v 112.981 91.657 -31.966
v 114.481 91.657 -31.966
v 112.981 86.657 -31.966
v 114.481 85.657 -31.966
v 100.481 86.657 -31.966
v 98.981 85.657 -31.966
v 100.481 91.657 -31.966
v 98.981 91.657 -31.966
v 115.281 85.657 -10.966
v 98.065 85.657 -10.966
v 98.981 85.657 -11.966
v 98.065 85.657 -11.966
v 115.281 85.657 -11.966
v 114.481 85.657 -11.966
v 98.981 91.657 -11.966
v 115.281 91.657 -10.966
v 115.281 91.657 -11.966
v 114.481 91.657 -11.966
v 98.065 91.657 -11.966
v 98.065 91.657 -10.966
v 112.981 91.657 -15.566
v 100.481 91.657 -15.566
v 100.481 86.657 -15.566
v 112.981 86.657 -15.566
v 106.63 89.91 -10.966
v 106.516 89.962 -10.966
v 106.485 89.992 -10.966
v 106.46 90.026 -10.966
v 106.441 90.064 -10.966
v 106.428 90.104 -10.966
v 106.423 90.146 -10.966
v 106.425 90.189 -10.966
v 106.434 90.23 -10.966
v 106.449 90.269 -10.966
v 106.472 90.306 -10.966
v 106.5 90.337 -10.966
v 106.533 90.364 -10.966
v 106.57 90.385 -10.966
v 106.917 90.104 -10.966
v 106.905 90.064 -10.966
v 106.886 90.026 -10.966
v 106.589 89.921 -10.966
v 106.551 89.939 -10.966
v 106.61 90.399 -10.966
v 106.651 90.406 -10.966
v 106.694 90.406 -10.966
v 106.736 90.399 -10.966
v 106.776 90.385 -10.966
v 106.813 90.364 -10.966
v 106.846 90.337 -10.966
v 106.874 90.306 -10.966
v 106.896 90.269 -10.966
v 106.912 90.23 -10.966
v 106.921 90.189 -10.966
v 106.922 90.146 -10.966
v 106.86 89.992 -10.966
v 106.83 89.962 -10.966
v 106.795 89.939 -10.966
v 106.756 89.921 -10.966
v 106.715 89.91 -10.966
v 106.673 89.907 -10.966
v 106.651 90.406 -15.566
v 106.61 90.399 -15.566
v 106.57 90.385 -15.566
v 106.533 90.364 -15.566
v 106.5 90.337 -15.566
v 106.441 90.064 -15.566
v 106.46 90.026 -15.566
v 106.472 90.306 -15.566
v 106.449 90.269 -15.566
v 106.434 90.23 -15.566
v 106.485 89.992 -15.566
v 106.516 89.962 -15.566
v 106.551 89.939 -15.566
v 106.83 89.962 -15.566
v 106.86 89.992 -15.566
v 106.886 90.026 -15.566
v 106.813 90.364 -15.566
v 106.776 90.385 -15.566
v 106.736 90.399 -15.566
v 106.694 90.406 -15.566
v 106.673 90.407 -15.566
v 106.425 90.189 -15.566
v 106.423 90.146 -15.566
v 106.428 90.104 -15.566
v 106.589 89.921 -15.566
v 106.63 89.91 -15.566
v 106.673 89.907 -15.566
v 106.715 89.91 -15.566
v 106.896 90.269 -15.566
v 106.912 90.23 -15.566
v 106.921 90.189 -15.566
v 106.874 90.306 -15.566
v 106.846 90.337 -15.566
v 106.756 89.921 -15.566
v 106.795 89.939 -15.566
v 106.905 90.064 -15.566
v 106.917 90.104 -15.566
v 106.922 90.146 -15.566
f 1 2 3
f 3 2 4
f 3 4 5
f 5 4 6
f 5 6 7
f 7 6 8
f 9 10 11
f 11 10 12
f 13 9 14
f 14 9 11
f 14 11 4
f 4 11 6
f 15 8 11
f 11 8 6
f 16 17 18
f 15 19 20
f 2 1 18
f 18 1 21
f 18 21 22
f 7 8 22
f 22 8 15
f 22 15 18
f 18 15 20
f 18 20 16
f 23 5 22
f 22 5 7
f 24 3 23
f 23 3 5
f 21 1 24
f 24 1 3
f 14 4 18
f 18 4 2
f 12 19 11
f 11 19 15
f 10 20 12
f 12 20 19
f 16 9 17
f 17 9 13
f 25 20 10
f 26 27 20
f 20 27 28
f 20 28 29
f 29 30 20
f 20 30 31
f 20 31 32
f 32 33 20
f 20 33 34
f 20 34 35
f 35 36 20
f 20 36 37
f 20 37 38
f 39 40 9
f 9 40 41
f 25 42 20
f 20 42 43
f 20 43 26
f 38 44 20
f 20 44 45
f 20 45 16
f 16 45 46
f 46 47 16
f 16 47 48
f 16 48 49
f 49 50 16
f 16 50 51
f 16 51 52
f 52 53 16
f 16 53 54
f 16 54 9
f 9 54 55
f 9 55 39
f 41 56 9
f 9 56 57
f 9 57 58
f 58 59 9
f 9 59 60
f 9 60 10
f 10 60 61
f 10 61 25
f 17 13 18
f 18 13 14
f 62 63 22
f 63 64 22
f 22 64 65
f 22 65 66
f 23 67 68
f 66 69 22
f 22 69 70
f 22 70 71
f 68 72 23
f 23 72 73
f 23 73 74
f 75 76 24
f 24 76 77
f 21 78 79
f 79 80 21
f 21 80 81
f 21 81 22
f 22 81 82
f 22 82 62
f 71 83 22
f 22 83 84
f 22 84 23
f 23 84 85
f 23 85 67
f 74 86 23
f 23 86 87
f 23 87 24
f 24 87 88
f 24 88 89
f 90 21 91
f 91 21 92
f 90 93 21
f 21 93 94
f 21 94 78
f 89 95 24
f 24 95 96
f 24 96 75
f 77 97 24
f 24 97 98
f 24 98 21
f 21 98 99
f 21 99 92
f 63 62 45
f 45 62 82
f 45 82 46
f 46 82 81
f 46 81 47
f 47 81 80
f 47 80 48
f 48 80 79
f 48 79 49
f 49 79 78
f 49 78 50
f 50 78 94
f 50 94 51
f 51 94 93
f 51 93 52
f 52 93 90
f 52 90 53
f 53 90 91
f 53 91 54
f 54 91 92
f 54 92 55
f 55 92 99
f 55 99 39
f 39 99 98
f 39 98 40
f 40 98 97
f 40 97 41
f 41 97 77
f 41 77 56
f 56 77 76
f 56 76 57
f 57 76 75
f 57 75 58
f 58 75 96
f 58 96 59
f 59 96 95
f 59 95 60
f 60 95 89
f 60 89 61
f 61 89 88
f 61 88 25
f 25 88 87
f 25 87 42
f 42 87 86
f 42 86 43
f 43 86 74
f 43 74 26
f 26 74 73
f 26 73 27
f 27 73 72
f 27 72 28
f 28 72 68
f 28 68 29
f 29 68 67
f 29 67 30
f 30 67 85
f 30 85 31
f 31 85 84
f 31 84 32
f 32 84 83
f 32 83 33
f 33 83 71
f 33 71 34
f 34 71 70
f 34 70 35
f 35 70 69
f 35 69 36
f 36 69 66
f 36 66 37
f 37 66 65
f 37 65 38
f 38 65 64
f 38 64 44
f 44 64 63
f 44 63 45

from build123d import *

# Parameters (mm, degrees)
BOSS_EXTRUDE1_DEPTH       = 20
SKETCH4_W                 = 17.215870058
SKETCH4_H                 = 6
BOSS_EXTRUDE2_DEPTH       = 1
BOSS_EXTRUDE3_DEPTH       = 3.6
F_1_0MM_DOWEL_HOLE1_D     = 0.5
F_1_0MM_DOWEL_HOLE1_DEPTH = 4.6


with BuildPart() as part:
    # Sketch3 → Boss-Extrude1 (new body)
    with BuildSketch(Plane(origin=(-3.4e-08, 0.000254638, -31.967040172), x_dir=(1, 0, -1e-09), z_dir=(1e-09, -7.966e-06, 1))):
        Polygon((98.980598041, 85.65676806), (114.480598041, 85.65676806), (114.480601842, 91.65676711), (112.980601807, 91.65676806), (112.980601807, 86.65676806), (100.480601842, 86.65676806), (100.480601842, 91.65676806), (98.980601842, 91.65676806), align=None)
    extrude(amount=BOSS_EXTRUDE1_DEPTH)

    # Sketch4 → Boss-Extrude2 (add)
    with BuildSketch(Plane(origin=(-1.3e-08, 9.5325e-05, -11.967040173), x_dir=(1, 0, -1e-09), z_dir=(1e-09, -7.966e-06, 1))):
        with Locations((106.672666813, 88.65676806)):
            Rectangle(SKETCH4_W, SKETCH4_H)
    extrude(amount=BOSS_EXTRUDE2_DEPTH)

    # Sketch7 → Boss-Extrude3 (add)
    with BuildSketch(Plane(origin=(-1.3e-08, 9.5325e-05, -11.967040173), x_dir=(-1, 0, 1e-09), z_dir=(-1e-09, 7.966e-06, -1))):
        Polygon((-112.980601816, 91.65676806), (-112.980601825, 86.65676806), (-100.480601842, 86.65676806), (-100.480601851, 91.65676806), align=None)
    extrude(amount=BOSS_EXTRUDE3_DEPTH)

    # Ø1.0mm Dowel Hole1
    with Locations(Plane(origin=(-1.2e-08, 8.7359e-05, -10.967040173), x_dir=(1, 0, -1e-09), z_dir=(1e-09, -7.966e-06, 1))):
        with Locations((106.672666813, 90.15676806)):
            Hole(F_1_0MM_DOWEL_HOLE1_D / 2, depth=F_1_0MM_DOWEL_HOLE1_DEPTH)


solid = part.part
